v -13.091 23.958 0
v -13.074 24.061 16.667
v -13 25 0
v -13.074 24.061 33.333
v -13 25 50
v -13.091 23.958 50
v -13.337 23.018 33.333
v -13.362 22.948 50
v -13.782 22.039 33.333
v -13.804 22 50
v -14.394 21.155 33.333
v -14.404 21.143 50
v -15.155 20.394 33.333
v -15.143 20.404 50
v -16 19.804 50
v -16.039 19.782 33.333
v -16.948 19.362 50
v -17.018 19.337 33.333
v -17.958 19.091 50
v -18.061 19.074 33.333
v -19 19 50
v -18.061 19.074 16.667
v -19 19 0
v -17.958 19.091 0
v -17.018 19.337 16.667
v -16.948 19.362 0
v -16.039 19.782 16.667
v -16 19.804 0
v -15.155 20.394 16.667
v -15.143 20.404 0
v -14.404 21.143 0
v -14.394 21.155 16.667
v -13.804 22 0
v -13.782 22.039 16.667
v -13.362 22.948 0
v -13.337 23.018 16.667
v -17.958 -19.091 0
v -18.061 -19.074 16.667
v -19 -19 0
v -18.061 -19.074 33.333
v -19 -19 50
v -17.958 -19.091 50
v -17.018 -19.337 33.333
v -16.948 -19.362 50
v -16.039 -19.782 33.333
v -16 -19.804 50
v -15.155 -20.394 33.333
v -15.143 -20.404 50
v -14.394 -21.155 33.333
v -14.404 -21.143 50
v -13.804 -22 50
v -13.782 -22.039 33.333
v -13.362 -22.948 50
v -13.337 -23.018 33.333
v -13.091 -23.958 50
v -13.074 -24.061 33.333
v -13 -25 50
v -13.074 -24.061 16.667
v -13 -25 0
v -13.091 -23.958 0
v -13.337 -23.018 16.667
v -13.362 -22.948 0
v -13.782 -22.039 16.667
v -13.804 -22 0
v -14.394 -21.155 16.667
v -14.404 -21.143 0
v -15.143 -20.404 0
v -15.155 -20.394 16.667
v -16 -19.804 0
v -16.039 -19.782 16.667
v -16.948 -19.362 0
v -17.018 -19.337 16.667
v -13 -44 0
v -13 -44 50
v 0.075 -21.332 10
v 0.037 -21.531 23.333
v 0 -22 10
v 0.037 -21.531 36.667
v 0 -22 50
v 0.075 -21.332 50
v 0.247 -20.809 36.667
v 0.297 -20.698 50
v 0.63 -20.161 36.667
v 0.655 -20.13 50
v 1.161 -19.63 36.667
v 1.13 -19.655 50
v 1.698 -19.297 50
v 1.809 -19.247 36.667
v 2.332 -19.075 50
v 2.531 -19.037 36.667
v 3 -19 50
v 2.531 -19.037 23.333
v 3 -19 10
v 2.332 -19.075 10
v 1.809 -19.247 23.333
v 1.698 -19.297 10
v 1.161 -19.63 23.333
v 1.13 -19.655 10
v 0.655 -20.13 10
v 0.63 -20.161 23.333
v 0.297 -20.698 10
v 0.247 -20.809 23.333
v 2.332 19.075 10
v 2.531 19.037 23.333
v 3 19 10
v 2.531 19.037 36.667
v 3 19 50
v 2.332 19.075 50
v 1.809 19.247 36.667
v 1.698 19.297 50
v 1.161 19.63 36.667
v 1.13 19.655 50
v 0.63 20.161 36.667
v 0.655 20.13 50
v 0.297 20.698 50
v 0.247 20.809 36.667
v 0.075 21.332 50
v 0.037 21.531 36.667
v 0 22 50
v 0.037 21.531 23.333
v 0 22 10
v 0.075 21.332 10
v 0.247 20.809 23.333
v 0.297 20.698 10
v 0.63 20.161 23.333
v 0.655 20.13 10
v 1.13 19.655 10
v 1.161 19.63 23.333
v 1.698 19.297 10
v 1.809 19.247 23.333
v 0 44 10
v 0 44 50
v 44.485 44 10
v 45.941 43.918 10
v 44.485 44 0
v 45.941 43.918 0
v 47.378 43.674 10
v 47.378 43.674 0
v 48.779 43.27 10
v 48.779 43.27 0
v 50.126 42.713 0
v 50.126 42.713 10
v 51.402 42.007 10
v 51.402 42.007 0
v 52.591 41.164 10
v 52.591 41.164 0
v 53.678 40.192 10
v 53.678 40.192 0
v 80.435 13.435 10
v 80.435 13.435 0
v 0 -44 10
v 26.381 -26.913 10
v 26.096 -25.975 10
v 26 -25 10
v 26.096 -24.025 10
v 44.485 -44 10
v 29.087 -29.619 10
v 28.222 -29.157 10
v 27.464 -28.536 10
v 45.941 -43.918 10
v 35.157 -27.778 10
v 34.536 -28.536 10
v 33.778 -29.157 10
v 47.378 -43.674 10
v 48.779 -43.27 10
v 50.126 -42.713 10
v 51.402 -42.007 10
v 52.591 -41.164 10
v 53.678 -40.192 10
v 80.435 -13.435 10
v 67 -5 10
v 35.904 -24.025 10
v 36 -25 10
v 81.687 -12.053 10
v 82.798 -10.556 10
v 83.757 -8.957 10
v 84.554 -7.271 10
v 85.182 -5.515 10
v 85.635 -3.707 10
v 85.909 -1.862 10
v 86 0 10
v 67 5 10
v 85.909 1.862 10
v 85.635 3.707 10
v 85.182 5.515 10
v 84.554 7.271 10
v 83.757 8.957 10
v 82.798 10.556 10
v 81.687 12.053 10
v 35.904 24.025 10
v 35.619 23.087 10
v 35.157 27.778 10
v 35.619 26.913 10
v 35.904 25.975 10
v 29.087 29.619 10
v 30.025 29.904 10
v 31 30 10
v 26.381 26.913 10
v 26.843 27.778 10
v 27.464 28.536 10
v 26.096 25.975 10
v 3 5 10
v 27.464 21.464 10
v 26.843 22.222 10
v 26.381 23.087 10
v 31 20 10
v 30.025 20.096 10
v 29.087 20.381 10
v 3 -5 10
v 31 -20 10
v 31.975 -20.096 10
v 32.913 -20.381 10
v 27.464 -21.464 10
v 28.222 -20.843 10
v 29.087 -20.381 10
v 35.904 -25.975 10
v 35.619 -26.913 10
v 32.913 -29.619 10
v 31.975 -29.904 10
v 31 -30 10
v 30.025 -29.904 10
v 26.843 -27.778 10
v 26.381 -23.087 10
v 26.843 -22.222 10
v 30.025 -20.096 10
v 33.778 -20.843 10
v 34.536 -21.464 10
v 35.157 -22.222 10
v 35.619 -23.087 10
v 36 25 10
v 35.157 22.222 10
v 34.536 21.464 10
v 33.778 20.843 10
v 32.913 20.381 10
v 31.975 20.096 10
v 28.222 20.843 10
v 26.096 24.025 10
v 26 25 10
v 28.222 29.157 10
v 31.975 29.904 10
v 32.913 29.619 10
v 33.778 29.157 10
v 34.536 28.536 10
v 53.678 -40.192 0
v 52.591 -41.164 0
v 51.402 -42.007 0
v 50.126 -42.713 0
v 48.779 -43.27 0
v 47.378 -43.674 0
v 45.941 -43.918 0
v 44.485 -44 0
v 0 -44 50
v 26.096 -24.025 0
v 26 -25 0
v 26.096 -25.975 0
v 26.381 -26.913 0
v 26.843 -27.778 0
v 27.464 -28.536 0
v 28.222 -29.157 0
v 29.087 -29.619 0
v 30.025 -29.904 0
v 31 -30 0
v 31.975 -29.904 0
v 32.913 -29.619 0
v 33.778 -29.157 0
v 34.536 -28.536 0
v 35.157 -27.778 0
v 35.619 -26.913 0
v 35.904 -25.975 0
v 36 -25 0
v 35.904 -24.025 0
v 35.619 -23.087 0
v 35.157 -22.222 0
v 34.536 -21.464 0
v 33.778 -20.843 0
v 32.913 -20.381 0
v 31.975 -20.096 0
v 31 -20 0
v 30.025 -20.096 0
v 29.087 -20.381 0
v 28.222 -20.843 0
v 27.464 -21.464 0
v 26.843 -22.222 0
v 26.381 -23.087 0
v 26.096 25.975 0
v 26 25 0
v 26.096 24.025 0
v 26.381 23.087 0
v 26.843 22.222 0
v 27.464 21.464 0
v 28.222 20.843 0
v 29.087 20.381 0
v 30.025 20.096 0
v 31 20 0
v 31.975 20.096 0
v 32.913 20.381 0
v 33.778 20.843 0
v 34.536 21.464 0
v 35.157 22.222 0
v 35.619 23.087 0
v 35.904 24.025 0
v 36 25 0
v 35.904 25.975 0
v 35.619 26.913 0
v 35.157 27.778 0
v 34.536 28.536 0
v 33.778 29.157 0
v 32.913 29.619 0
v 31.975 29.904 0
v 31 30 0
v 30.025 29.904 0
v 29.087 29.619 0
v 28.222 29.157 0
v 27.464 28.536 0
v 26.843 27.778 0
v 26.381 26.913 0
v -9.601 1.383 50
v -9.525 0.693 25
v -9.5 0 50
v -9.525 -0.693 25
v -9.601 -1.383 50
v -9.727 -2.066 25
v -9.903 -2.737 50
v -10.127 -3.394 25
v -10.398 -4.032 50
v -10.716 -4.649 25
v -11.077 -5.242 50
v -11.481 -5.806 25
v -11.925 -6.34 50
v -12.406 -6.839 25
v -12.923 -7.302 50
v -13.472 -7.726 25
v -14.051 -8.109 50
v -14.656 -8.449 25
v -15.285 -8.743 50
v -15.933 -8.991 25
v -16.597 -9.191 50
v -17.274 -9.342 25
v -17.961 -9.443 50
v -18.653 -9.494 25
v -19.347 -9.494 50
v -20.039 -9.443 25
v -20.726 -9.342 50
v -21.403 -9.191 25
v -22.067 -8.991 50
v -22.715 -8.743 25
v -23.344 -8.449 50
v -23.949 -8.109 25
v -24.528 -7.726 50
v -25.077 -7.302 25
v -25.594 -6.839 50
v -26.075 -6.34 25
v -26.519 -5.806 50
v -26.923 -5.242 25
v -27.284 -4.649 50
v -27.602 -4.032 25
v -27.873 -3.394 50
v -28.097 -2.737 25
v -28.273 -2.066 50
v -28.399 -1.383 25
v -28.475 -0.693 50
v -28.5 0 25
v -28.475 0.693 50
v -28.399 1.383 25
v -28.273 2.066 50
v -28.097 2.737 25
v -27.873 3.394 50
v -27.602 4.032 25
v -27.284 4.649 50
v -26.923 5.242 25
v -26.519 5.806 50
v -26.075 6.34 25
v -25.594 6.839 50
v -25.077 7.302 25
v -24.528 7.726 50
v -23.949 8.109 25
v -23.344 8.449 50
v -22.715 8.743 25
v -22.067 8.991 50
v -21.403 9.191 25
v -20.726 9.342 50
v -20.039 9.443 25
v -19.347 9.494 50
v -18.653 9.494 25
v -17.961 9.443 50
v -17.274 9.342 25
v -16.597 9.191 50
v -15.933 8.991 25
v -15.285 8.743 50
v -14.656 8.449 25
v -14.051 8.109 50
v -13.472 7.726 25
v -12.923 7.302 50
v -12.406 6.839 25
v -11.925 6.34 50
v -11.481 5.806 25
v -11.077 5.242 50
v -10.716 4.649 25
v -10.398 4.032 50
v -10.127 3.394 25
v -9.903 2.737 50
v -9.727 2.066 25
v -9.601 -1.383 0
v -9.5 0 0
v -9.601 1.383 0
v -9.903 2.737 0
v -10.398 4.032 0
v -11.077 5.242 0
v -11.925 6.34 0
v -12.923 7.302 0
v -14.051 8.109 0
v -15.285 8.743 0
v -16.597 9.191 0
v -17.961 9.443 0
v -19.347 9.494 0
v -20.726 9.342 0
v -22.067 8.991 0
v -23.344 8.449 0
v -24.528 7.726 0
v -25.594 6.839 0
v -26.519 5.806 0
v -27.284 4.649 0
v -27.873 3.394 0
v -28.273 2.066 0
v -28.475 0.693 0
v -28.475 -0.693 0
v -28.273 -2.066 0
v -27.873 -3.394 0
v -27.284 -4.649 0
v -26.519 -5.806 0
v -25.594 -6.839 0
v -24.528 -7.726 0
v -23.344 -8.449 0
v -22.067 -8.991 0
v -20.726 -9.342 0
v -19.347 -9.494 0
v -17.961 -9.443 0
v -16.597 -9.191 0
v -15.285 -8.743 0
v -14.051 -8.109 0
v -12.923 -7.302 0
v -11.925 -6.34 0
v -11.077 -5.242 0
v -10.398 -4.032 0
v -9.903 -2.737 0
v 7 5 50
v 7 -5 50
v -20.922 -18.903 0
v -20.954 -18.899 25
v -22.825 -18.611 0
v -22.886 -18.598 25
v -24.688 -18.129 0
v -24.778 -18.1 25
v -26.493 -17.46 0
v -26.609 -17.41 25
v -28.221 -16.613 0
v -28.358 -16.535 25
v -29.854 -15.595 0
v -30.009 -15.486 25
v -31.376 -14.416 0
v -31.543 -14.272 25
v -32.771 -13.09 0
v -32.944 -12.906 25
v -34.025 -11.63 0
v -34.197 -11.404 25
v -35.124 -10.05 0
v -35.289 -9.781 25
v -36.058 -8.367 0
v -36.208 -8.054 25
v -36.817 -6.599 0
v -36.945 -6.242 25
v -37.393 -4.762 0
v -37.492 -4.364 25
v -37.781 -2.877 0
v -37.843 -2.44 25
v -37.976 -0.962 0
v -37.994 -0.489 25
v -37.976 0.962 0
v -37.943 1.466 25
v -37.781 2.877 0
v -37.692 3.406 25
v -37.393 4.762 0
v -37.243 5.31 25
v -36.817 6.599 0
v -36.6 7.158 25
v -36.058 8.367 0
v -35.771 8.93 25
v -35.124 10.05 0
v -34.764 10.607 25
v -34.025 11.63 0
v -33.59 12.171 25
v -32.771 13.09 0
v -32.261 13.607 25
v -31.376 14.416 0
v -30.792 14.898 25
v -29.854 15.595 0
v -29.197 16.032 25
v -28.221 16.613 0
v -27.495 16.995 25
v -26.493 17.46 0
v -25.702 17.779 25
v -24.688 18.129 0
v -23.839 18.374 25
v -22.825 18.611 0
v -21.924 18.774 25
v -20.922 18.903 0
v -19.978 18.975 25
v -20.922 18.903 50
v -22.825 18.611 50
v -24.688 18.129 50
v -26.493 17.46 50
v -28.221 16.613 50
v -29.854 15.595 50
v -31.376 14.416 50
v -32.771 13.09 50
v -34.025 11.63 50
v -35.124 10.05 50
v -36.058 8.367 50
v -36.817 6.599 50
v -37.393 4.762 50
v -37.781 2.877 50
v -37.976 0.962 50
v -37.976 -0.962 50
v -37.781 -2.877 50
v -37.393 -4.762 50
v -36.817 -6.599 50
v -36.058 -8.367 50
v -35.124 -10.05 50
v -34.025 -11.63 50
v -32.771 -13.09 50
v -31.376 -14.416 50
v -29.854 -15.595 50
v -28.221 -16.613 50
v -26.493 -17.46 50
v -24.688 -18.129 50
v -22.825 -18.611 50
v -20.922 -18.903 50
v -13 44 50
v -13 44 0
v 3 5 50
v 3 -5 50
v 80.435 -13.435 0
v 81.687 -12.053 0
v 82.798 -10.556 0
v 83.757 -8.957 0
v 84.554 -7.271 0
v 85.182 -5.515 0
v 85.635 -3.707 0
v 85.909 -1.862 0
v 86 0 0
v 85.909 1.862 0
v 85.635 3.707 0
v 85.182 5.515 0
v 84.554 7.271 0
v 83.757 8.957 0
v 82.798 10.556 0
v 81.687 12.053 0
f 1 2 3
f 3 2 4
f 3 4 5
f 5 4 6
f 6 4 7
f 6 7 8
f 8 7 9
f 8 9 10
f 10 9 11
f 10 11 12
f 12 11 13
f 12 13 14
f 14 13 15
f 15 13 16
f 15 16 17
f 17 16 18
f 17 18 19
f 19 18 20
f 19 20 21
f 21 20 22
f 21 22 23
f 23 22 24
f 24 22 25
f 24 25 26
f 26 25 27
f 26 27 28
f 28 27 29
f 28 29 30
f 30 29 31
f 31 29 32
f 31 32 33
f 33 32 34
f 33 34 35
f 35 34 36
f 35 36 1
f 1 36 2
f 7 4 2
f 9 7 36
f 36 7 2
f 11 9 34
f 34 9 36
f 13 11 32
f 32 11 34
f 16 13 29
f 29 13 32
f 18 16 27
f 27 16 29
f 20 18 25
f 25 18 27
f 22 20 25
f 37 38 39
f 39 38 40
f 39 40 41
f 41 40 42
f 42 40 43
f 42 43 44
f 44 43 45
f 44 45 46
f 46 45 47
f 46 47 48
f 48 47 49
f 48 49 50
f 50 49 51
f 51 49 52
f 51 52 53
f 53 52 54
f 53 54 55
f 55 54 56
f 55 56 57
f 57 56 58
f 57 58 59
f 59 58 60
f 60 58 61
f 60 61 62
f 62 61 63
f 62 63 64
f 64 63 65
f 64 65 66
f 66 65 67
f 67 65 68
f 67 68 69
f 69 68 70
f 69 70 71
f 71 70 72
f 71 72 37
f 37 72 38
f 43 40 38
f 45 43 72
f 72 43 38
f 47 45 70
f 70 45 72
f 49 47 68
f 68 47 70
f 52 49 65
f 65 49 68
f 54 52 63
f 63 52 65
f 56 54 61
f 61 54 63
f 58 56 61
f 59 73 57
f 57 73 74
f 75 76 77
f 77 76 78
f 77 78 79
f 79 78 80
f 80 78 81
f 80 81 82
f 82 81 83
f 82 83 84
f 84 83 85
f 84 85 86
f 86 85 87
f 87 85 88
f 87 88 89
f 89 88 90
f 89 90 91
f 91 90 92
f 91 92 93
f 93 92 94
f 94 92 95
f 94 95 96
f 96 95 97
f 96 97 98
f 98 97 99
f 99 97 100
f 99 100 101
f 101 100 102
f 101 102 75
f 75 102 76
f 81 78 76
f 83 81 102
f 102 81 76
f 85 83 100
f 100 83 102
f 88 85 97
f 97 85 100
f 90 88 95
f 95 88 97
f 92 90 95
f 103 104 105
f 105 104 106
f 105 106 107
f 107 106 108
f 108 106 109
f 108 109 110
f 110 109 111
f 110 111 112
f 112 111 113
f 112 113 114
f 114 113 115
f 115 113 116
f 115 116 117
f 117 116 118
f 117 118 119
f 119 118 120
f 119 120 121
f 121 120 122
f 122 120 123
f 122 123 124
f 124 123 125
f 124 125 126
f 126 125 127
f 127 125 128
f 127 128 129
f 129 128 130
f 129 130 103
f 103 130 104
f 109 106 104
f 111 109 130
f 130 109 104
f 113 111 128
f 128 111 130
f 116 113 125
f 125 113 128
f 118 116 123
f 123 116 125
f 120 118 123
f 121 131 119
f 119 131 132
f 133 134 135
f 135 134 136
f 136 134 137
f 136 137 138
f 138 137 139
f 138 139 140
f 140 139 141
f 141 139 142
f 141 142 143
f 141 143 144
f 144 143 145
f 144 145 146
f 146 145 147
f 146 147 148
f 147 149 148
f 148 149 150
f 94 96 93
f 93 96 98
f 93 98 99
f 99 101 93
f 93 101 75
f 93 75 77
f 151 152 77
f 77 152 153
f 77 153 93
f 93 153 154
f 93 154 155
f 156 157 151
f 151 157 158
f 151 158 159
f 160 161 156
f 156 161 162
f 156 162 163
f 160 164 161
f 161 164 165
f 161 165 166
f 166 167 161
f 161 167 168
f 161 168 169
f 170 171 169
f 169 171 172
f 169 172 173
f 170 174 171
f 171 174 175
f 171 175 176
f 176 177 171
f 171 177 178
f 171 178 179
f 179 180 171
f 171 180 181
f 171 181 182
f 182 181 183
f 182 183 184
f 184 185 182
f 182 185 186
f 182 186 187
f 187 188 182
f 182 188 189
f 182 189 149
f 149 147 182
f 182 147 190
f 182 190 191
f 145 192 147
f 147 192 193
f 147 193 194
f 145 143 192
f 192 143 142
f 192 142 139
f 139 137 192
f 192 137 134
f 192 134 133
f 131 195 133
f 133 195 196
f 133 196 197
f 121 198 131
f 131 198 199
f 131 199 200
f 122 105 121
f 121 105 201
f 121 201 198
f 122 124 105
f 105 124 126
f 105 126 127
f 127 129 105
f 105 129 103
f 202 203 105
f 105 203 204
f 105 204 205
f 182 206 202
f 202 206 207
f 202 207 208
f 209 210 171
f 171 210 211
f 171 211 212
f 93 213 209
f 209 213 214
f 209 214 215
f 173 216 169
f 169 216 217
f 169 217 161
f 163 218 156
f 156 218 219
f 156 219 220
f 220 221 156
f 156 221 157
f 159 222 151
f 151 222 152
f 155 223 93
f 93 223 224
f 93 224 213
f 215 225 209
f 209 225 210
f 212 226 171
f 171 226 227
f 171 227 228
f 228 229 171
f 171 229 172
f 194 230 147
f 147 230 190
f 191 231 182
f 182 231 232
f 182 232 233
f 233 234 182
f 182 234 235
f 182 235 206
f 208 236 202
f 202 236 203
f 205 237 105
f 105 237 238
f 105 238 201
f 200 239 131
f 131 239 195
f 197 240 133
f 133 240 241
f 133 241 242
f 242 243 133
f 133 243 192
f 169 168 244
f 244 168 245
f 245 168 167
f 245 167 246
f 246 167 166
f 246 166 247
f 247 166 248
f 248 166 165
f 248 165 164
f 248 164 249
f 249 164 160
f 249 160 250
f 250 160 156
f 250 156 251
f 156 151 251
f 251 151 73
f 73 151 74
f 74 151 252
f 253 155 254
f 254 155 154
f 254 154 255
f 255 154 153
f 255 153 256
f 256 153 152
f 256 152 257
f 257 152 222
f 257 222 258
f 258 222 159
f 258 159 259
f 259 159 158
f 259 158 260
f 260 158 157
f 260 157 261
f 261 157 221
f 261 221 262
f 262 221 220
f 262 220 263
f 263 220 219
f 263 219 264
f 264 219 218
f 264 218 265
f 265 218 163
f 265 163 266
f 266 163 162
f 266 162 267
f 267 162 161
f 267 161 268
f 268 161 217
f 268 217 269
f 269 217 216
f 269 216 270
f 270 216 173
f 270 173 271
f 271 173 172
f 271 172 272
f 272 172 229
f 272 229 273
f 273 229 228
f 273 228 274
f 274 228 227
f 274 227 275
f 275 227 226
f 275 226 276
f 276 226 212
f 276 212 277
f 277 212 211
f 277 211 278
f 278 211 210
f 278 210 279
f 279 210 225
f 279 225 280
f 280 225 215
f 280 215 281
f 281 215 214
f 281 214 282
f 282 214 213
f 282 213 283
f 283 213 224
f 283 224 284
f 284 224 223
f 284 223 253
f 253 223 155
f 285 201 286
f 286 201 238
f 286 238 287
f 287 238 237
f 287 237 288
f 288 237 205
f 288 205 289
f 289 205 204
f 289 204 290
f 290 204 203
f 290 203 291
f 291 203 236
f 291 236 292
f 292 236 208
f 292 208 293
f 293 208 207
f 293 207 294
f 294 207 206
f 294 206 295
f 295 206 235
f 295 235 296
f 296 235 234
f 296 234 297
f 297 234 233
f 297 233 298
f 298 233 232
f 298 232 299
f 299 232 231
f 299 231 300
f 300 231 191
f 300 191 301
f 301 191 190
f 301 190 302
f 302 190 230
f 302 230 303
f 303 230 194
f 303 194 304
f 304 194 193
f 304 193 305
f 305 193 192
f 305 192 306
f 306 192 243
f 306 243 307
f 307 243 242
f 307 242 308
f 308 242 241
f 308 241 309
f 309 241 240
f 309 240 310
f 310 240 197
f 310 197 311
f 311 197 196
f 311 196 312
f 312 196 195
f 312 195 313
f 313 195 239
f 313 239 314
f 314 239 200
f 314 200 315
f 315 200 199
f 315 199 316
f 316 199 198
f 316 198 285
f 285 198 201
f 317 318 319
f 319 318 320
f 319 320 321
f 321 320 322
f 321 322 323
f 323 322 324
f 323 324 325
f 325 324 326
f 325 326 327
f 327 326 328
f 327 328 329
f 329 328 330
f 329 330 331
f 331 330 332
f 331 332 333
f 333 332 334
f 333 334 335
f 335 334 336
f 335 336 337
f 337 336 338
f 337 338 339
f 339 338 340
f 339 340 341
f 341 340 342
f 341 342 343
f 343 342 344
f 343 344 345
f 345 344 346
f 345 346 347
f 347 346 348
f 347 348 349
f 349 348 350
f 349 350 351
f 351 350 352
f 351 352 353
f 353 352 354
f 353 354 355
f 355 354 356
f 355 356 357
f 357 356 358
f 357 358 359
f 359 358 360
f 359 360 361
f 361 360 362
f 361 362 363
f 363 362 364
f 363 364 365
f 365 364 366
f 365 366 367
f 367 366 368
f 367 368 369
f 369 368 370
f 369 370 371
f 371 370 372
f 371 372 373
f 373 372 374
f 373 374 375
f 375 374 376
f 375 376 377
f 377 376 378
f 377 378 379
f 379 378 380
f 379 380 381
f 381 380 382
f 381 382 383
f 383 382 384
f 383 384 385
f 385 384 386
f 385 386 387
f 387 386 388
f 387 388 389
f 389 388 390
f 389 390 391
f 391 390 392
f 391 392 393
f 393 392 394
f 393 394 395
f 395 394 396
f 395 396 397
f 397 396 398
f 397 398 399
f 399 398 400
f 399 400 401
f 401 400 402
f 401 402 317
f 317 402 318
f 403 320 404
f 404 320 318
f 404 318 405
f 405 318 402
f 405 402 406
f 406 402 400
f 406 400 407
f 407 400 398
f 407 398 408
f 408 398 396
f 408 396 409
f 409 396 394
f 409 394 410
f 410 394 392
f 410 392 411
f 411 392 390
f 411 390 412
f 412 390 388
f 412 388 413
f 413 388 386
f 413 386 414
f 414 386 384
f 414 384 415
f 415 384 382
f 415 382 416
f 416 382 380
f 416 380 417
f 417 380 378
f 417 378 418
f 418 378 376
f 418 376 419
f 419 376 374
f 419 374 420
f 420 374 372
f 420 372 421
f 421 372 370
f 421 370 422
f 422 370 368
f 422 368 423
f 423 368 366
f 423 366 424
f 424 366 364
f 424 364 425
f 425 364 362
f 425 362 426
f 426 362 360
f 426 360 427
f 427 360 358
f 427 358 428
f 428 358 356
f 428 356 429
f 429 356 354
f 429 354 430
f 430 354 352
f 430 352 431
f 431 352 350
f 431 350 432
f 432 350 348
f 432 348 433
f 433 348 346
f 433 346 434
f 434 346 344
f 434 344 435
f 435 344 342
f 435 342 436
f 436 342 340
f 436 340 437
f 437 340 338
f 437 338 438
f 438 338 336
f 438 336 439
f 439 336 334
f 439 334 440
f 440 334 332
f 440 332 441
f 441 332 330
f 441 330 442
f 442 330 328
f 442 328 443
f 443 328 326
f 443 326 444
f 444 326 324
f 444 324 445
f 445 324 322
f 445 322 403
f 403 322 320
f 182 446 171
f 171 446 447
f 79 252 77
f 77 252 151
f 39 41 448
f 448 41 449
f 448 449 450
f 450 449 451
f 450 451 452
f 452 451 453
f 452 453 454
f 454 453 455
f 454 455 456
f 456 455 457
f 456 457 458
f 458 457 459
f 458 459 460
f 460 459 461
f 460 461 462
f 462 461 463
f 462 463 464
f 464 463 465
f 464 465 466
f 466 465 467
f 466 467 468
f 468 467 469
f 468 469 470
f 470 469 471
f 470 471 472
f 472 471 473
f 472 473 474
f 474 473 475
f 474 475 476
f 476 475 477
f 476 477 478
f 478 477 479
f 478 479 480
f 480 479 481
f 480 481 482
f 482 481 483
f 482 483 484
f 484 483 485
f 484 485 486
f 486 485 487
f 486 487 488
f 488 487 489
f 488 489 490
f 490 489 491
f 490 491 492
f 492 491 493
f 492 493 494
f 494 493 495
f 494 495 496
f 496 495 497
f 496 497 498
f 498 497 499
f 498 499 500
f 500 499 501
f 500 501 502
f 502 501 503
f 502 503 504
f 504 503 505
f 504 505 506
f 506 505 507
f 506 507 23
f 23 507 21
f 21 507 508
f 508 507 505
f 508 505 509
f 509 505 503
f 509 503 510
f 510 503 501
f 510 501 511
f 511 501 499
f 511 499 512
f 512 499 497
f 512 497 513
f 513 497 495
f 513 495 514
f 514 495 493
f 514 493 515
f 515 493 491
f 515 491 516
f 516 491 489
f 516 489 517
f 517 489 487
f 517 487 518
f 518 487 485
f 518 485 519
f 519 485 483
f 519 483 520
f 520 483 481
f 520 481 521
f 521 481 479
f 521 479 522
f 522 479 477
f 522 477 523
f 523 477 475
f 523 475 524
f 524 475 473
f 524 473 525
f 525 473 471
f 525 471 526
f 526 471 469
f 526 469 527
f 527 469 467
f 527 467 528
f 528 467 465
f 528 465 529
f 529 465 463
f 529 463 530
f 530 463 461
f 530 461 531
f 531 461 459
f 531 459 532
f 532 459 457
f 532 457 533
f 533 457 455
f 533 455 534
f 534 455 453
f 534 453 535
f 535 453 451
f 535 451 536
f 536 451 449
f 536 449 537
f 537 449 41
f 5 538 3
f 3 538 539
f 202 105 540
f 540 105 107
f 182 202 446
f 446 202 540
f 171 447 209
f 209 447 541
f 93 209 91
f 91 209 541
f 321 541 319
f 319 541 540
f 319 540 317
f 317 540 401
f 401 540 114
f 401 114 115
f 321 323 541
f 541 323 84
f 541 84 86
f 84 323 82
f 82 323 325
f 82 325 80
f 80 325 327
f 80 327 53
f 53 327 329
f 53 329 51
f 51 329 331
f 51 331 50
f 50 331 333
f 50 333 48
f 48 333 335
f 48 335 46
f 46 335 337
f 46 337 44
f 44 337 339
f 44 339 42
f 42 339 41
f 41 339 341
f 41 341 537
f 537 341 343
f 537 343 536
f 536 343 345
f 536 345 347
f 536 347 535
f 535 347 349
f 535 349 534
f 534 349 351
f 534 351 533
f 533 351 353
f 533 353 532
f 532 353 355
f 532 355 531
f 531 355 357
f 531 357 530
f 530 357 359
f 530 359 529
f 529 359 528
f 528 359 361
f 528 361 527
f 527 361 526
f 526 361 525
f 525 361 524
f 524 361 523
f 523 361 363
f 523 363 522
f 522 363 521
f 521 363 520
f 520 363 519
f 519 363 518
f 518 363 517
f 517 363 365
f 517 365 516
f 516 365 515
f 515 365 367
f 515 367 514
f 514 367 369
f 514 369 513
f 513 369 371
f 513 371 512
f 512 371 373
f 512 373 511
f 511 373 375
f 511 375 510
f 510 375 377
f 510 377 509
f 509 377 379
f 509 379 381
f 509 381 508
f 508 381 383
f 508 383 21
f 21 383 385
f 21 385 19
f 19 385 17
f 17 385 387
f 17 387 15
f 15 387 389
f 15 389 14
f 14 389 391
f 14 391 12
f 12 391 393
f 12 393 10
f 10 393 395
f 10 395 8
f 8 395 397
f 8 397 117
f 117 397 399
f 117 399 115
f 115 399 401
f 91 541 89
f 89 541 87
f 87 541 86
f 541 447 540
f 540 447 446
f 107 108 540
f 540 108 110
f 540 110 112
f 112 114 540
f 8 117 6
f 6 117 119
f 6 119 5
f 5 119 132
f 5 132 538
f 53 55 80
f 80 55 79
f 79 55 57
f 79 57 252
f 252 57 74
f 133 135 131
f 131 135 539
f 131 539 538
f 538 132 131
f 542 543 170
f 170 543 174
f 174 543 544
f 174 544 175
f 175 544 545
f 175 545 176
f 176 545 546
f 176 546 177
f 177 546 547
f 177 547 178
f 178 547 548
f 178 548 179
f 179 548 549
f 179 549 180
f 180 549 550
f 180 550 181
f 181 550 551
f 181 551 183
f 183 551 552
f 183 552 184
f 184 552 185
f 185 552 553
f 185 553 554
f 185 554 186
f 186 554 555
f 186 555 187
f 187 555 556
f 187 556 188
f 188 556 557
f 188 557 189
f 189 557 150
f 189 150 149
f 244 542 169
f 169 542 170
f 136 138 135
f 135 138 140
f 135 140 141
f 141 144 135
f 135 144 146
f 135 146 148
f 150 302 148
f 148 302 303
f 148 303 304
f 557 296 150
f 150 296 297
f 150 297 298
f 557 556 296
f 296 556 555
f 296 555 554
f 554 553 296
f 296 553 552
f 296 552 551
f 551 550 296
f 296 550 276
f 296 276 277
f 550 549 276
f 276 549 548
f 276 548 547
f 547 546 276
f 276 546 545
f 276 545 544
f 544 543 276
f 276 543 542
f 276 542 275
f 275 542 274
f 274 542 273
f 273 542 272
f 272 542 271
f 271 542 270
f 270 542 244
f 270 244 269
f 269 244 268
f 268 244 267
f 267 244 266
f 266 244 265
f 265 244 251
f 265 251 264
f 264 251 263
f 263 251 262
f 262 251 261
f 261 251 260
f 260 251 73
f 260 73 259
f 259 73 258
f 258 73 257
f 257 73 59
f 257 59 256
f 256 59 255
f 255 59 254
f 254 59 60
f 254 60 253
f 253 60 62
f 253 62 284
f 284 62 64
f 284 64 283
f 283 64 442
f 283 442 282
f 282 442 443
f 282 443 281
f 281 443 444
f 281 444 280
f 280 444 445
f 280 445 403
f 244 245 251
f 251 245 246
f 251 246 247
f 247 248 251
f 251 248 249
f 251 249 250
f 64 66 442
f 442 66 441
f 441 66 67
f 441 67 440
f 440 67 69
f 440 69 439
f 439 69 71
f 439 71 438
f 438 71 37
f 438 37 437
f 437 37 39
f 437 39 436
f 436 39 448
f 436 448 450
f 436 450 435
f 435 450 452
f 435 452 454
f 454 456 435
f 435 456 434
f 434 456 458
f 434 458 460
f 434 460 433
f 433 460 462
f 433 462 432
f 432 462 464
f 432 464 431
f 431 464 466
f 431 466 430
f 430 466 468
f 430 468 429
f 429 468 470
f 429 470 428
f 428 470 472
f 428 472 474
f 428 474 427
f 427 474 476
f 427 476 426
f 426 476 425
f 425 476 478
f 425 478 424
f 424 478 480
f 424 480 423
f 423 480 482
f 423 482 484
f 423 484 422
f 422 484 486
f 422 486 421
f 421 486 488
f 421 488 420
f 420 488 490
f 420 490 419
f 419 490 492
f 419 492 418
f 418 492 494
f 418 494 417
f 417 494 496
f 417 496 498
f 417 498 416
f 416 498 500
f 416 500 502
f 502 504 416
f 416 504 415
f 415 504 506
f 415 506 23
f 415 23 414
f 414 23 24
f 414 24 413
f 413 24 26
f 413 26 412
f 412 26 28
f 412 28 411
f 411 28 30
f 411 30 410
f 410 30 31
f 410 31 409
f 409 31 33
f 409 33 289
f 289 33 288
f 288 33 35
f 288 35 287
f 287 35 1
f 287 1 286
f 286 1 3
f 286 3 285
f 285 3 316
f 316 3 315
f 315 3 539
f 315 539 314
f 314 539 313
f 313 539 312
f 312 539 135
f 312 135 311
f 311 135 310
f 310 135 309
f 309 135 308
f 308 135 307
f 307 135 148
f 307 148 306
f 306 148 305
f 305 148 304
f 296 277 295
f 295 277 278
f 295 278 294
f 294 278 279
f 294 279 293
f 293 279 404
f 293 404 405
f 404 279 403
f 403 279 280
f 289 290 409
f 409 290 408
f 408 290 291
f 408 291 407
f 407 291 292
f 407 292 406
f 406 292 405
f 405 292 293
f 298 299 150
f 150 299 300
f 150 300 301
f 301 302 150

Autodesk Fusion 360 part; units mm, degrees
sketch "Sketch1" plane through (0, 0, 0) normal (0, 0, 1) x (1, 0, 0)
  line L0 (0, 44) -> (67, 44)
  line L1 (67, -44) -> (0, -44)
  line L2 (0, 0) -> (67, 0) construction
  line L3 (0, 44) -> (0, -44)
  line L4 (80.435, -13.435) -> (49.8701, -44)
  line L5 (80.435, 13.435) -> (49.8701, 44)
  arc A0 (80.435, -13.435) -> (80.435, 13.435) centre (67, 0) ccw
  dimension "d2" = 67
  dimension "d3" = 88
  dimension "d4" = 67
  dimension "d6" = 38
  dimension "d9" = 45
  dimension "d10" = 45
extrude "Extrude2" add sketch "Sketch1" along normal blind 10
sketch "Sketch5" plane through (0, 0, 10) normal (0, 0, 1) x (-1, 0, 0)
  line L0 (-49.8701, 44) -> (-80.435, 13.435)
  arc A0 (-80.435, 13.435) -> (-80.435, -13.435) centre (-67, 0) ccw
  line L1 (-80.435, -13.435) -> (-49.8701, -44)
  line L2 (-49.8701, -44) -> (0, -44)
  line L3 (0, -44) -> (0, 44)
  line L4 (0, 44) -> (-49.8701, 44)
  line L5 (0, -44) -> (13, -44)
  line L6 (13, -44) -> (13, -19)
  line L7 (13, -19) -> (19, -19)
  line L8 (19, 0) -> (0, 0) construction
  line L9 (0, 44) -> (13, 44)
  line L10 (13, 44) -> (13, 19)
  line L11 (13, 19) -> (19, 19)
  arc A1 (19, -19) -> (19, 19) centre (19, 0) ccw
  line L12 (0, -19) -> (-3, -19)
  line L13 (-3, -19) -> (-3, -5)
  line L14 (-3, -5) -> (-7, -5)
  line L15 (-7, -5) -> (-7, 0)
  line L16 (0, 19) -> (-3, 19)
  line L17 (-3, 19) -> (-3, 5)
  line L18 (-3, 5) -> (-7, 5)
  line L19 (-7, 5) -> (-7, 0)
  line L20 (0, -44) -> (0, -19)
  line L21 (0, 19) -> (0, 44)
  dimension "d15" = 13
  dimension "d16" = 38
  dimension "d17" = 6
  dimension "d18" = 3
  dimension "d19" = 14
  dimension "d20" = 4
extrude "Extrude4" add sketch "Sketch5" along normal blind 40 contours L3 L12 L13 L14 L15 L16 L17 L18 L19
extrude "Extrude3" add sketch "Sketch5" along normal blind 40 and the other way blind 10 contours L3 L5 L6 L7 L9 L10 L11 A1 L20 L21
ref_plane "WorkPlane1" through (18.435, 0, 25) normal (0, 1, 0) x (-1, 0, 0)
sketch "Sketch7" plane through (7, 0, 0) normal (1, 0, 0) x (0, 1, 0)
  line L0 (-5, 10) -> (5, 10)
  line L1 (5, 10) -> (5, 50)
  line L2 (5, 50) -> (-5, 50)
  line L3 (-5, 50) -> (-5, 10)
  line L4 (0, 50) -> (0, 10) construction
sketch "Sketch8" plane through (0, 0, 10) normal (0, 0, 1) x (-1, 0, 0)
  line L0 (-47, 36) -> (-47, -54) construction
  line L1 (-47, -9) -> (-3.8729, -9) construction
  line L2 (-47, -9) -> (-47, -34) construction
  line L3 (-47, -9) -> (-11, -9) construction
  line L4 (-67, 44) -> (-67, -44) construction
  line L5 (-67, -9) -> (-67, -34) construction
  line L6 (-67, -9) -> (-31, -9) construction
  line L7 (-67, 0) -> (-7.0889, 0) construction
  line L8 (-31, 0) -> (-31, -25) construction
  line L9 (-31, 0) -> (-31, 25) construction
  point P0 (-67, 44)
  point P1 (-67, -44)
  dimension "d37" = 25
  dimension "d39" = 36
  dimension "d45" = 25
  dimension "d49" = 25
sketch "Sketch6" plane through (18.435, 0, 25) normal (0, 1, 0) x (1, 0, 0)
  line L0 (-11.435, 15) -> (-11.435, -25)
  line L1 (-11.435, -25) -> (48.565, 15)
  line L2 (48.565, 15) -> (-11.435, 15)
  point P0 (-11.435, 15)
  point P1 (-11.435, -25)
  point P2 (48.565, 15)
extrude "Extrude6" add sketch "Sketch6" along normal mid plane 10
hole "Hole2" at (-19, 0, 50) direction (0, 0, -1) diameter 19 depth 50 tip angle 118
hole "Hole3" at (31, 25, 10) direction (0, 0, -1) diameter 10 depth 50 tip angle 118
hole "Hole4" at (31, -25, 10) direction (0, 0, -1) diameter 10 depth 50 tip angle 118
fillet "Fillet7" radius 13 2 edges at (49.8701, -44, 5) (49.8701, 44, 5)
fillet "Fillet8" radius 3 2 edges at (0, 19, 30) (0, -19, 30)
fillet "Fillet9" radius 6 2 edges at (-13, -19, 25) (-13, 19, 25)
extrude "Extrude5" [suppressed]
fillet "Fillet3" [suppressed]
fillet "Fillet4" [suppressed]
fillet "Fillet5" [suppressed]
fillet "Fillet6" [suppressed]
sketch "Sketch9" plane through (0, 0, 50) normal (0, 0, 1) x (-1, 0, 0)
  line L0 (-3, 19) -> (-3, 5)
  line L1 (-3, 5) -> (-7, 5)
  line L2 (-7, -5) -> (-3, -5)
  line L3 (-3, -5) -> (-3, -19)
  arc A0 (0, -22) -> (-3, -19) centre (-3, -22) ccw
  line L4 (0, -22) -> (0, -44)
  line L5 (0, -44) -> (13, -44)
  line L6 (13, -44) -> (13, -25)
  arc A1 (19, -19) -> (13, -25) centre (19, -25) ccw
  arc A2 (19, -19) -> (19, 19) centre (19, 0) ccw
  arc A3 (13, 25) -> (19, 19) centre (19, 25) ccw
  line L7 (13, 25) -> (13, 44)
  line L8 (13, 44) -> (0, 44)
  line L9 (0, 44) -> (0, 22)
  arc A4 (-3, 19) -> (0, 22) centre (-3, 22) ccw
  circle A5 centre (19, 0) radius 9.5 construction
  line L10 (-7, 5) -> (-7, 0)
  line L11 (-7, 0) -> (-7, -5)
  dimension "d33" = 19
hole "Hole1" [suppressed]
